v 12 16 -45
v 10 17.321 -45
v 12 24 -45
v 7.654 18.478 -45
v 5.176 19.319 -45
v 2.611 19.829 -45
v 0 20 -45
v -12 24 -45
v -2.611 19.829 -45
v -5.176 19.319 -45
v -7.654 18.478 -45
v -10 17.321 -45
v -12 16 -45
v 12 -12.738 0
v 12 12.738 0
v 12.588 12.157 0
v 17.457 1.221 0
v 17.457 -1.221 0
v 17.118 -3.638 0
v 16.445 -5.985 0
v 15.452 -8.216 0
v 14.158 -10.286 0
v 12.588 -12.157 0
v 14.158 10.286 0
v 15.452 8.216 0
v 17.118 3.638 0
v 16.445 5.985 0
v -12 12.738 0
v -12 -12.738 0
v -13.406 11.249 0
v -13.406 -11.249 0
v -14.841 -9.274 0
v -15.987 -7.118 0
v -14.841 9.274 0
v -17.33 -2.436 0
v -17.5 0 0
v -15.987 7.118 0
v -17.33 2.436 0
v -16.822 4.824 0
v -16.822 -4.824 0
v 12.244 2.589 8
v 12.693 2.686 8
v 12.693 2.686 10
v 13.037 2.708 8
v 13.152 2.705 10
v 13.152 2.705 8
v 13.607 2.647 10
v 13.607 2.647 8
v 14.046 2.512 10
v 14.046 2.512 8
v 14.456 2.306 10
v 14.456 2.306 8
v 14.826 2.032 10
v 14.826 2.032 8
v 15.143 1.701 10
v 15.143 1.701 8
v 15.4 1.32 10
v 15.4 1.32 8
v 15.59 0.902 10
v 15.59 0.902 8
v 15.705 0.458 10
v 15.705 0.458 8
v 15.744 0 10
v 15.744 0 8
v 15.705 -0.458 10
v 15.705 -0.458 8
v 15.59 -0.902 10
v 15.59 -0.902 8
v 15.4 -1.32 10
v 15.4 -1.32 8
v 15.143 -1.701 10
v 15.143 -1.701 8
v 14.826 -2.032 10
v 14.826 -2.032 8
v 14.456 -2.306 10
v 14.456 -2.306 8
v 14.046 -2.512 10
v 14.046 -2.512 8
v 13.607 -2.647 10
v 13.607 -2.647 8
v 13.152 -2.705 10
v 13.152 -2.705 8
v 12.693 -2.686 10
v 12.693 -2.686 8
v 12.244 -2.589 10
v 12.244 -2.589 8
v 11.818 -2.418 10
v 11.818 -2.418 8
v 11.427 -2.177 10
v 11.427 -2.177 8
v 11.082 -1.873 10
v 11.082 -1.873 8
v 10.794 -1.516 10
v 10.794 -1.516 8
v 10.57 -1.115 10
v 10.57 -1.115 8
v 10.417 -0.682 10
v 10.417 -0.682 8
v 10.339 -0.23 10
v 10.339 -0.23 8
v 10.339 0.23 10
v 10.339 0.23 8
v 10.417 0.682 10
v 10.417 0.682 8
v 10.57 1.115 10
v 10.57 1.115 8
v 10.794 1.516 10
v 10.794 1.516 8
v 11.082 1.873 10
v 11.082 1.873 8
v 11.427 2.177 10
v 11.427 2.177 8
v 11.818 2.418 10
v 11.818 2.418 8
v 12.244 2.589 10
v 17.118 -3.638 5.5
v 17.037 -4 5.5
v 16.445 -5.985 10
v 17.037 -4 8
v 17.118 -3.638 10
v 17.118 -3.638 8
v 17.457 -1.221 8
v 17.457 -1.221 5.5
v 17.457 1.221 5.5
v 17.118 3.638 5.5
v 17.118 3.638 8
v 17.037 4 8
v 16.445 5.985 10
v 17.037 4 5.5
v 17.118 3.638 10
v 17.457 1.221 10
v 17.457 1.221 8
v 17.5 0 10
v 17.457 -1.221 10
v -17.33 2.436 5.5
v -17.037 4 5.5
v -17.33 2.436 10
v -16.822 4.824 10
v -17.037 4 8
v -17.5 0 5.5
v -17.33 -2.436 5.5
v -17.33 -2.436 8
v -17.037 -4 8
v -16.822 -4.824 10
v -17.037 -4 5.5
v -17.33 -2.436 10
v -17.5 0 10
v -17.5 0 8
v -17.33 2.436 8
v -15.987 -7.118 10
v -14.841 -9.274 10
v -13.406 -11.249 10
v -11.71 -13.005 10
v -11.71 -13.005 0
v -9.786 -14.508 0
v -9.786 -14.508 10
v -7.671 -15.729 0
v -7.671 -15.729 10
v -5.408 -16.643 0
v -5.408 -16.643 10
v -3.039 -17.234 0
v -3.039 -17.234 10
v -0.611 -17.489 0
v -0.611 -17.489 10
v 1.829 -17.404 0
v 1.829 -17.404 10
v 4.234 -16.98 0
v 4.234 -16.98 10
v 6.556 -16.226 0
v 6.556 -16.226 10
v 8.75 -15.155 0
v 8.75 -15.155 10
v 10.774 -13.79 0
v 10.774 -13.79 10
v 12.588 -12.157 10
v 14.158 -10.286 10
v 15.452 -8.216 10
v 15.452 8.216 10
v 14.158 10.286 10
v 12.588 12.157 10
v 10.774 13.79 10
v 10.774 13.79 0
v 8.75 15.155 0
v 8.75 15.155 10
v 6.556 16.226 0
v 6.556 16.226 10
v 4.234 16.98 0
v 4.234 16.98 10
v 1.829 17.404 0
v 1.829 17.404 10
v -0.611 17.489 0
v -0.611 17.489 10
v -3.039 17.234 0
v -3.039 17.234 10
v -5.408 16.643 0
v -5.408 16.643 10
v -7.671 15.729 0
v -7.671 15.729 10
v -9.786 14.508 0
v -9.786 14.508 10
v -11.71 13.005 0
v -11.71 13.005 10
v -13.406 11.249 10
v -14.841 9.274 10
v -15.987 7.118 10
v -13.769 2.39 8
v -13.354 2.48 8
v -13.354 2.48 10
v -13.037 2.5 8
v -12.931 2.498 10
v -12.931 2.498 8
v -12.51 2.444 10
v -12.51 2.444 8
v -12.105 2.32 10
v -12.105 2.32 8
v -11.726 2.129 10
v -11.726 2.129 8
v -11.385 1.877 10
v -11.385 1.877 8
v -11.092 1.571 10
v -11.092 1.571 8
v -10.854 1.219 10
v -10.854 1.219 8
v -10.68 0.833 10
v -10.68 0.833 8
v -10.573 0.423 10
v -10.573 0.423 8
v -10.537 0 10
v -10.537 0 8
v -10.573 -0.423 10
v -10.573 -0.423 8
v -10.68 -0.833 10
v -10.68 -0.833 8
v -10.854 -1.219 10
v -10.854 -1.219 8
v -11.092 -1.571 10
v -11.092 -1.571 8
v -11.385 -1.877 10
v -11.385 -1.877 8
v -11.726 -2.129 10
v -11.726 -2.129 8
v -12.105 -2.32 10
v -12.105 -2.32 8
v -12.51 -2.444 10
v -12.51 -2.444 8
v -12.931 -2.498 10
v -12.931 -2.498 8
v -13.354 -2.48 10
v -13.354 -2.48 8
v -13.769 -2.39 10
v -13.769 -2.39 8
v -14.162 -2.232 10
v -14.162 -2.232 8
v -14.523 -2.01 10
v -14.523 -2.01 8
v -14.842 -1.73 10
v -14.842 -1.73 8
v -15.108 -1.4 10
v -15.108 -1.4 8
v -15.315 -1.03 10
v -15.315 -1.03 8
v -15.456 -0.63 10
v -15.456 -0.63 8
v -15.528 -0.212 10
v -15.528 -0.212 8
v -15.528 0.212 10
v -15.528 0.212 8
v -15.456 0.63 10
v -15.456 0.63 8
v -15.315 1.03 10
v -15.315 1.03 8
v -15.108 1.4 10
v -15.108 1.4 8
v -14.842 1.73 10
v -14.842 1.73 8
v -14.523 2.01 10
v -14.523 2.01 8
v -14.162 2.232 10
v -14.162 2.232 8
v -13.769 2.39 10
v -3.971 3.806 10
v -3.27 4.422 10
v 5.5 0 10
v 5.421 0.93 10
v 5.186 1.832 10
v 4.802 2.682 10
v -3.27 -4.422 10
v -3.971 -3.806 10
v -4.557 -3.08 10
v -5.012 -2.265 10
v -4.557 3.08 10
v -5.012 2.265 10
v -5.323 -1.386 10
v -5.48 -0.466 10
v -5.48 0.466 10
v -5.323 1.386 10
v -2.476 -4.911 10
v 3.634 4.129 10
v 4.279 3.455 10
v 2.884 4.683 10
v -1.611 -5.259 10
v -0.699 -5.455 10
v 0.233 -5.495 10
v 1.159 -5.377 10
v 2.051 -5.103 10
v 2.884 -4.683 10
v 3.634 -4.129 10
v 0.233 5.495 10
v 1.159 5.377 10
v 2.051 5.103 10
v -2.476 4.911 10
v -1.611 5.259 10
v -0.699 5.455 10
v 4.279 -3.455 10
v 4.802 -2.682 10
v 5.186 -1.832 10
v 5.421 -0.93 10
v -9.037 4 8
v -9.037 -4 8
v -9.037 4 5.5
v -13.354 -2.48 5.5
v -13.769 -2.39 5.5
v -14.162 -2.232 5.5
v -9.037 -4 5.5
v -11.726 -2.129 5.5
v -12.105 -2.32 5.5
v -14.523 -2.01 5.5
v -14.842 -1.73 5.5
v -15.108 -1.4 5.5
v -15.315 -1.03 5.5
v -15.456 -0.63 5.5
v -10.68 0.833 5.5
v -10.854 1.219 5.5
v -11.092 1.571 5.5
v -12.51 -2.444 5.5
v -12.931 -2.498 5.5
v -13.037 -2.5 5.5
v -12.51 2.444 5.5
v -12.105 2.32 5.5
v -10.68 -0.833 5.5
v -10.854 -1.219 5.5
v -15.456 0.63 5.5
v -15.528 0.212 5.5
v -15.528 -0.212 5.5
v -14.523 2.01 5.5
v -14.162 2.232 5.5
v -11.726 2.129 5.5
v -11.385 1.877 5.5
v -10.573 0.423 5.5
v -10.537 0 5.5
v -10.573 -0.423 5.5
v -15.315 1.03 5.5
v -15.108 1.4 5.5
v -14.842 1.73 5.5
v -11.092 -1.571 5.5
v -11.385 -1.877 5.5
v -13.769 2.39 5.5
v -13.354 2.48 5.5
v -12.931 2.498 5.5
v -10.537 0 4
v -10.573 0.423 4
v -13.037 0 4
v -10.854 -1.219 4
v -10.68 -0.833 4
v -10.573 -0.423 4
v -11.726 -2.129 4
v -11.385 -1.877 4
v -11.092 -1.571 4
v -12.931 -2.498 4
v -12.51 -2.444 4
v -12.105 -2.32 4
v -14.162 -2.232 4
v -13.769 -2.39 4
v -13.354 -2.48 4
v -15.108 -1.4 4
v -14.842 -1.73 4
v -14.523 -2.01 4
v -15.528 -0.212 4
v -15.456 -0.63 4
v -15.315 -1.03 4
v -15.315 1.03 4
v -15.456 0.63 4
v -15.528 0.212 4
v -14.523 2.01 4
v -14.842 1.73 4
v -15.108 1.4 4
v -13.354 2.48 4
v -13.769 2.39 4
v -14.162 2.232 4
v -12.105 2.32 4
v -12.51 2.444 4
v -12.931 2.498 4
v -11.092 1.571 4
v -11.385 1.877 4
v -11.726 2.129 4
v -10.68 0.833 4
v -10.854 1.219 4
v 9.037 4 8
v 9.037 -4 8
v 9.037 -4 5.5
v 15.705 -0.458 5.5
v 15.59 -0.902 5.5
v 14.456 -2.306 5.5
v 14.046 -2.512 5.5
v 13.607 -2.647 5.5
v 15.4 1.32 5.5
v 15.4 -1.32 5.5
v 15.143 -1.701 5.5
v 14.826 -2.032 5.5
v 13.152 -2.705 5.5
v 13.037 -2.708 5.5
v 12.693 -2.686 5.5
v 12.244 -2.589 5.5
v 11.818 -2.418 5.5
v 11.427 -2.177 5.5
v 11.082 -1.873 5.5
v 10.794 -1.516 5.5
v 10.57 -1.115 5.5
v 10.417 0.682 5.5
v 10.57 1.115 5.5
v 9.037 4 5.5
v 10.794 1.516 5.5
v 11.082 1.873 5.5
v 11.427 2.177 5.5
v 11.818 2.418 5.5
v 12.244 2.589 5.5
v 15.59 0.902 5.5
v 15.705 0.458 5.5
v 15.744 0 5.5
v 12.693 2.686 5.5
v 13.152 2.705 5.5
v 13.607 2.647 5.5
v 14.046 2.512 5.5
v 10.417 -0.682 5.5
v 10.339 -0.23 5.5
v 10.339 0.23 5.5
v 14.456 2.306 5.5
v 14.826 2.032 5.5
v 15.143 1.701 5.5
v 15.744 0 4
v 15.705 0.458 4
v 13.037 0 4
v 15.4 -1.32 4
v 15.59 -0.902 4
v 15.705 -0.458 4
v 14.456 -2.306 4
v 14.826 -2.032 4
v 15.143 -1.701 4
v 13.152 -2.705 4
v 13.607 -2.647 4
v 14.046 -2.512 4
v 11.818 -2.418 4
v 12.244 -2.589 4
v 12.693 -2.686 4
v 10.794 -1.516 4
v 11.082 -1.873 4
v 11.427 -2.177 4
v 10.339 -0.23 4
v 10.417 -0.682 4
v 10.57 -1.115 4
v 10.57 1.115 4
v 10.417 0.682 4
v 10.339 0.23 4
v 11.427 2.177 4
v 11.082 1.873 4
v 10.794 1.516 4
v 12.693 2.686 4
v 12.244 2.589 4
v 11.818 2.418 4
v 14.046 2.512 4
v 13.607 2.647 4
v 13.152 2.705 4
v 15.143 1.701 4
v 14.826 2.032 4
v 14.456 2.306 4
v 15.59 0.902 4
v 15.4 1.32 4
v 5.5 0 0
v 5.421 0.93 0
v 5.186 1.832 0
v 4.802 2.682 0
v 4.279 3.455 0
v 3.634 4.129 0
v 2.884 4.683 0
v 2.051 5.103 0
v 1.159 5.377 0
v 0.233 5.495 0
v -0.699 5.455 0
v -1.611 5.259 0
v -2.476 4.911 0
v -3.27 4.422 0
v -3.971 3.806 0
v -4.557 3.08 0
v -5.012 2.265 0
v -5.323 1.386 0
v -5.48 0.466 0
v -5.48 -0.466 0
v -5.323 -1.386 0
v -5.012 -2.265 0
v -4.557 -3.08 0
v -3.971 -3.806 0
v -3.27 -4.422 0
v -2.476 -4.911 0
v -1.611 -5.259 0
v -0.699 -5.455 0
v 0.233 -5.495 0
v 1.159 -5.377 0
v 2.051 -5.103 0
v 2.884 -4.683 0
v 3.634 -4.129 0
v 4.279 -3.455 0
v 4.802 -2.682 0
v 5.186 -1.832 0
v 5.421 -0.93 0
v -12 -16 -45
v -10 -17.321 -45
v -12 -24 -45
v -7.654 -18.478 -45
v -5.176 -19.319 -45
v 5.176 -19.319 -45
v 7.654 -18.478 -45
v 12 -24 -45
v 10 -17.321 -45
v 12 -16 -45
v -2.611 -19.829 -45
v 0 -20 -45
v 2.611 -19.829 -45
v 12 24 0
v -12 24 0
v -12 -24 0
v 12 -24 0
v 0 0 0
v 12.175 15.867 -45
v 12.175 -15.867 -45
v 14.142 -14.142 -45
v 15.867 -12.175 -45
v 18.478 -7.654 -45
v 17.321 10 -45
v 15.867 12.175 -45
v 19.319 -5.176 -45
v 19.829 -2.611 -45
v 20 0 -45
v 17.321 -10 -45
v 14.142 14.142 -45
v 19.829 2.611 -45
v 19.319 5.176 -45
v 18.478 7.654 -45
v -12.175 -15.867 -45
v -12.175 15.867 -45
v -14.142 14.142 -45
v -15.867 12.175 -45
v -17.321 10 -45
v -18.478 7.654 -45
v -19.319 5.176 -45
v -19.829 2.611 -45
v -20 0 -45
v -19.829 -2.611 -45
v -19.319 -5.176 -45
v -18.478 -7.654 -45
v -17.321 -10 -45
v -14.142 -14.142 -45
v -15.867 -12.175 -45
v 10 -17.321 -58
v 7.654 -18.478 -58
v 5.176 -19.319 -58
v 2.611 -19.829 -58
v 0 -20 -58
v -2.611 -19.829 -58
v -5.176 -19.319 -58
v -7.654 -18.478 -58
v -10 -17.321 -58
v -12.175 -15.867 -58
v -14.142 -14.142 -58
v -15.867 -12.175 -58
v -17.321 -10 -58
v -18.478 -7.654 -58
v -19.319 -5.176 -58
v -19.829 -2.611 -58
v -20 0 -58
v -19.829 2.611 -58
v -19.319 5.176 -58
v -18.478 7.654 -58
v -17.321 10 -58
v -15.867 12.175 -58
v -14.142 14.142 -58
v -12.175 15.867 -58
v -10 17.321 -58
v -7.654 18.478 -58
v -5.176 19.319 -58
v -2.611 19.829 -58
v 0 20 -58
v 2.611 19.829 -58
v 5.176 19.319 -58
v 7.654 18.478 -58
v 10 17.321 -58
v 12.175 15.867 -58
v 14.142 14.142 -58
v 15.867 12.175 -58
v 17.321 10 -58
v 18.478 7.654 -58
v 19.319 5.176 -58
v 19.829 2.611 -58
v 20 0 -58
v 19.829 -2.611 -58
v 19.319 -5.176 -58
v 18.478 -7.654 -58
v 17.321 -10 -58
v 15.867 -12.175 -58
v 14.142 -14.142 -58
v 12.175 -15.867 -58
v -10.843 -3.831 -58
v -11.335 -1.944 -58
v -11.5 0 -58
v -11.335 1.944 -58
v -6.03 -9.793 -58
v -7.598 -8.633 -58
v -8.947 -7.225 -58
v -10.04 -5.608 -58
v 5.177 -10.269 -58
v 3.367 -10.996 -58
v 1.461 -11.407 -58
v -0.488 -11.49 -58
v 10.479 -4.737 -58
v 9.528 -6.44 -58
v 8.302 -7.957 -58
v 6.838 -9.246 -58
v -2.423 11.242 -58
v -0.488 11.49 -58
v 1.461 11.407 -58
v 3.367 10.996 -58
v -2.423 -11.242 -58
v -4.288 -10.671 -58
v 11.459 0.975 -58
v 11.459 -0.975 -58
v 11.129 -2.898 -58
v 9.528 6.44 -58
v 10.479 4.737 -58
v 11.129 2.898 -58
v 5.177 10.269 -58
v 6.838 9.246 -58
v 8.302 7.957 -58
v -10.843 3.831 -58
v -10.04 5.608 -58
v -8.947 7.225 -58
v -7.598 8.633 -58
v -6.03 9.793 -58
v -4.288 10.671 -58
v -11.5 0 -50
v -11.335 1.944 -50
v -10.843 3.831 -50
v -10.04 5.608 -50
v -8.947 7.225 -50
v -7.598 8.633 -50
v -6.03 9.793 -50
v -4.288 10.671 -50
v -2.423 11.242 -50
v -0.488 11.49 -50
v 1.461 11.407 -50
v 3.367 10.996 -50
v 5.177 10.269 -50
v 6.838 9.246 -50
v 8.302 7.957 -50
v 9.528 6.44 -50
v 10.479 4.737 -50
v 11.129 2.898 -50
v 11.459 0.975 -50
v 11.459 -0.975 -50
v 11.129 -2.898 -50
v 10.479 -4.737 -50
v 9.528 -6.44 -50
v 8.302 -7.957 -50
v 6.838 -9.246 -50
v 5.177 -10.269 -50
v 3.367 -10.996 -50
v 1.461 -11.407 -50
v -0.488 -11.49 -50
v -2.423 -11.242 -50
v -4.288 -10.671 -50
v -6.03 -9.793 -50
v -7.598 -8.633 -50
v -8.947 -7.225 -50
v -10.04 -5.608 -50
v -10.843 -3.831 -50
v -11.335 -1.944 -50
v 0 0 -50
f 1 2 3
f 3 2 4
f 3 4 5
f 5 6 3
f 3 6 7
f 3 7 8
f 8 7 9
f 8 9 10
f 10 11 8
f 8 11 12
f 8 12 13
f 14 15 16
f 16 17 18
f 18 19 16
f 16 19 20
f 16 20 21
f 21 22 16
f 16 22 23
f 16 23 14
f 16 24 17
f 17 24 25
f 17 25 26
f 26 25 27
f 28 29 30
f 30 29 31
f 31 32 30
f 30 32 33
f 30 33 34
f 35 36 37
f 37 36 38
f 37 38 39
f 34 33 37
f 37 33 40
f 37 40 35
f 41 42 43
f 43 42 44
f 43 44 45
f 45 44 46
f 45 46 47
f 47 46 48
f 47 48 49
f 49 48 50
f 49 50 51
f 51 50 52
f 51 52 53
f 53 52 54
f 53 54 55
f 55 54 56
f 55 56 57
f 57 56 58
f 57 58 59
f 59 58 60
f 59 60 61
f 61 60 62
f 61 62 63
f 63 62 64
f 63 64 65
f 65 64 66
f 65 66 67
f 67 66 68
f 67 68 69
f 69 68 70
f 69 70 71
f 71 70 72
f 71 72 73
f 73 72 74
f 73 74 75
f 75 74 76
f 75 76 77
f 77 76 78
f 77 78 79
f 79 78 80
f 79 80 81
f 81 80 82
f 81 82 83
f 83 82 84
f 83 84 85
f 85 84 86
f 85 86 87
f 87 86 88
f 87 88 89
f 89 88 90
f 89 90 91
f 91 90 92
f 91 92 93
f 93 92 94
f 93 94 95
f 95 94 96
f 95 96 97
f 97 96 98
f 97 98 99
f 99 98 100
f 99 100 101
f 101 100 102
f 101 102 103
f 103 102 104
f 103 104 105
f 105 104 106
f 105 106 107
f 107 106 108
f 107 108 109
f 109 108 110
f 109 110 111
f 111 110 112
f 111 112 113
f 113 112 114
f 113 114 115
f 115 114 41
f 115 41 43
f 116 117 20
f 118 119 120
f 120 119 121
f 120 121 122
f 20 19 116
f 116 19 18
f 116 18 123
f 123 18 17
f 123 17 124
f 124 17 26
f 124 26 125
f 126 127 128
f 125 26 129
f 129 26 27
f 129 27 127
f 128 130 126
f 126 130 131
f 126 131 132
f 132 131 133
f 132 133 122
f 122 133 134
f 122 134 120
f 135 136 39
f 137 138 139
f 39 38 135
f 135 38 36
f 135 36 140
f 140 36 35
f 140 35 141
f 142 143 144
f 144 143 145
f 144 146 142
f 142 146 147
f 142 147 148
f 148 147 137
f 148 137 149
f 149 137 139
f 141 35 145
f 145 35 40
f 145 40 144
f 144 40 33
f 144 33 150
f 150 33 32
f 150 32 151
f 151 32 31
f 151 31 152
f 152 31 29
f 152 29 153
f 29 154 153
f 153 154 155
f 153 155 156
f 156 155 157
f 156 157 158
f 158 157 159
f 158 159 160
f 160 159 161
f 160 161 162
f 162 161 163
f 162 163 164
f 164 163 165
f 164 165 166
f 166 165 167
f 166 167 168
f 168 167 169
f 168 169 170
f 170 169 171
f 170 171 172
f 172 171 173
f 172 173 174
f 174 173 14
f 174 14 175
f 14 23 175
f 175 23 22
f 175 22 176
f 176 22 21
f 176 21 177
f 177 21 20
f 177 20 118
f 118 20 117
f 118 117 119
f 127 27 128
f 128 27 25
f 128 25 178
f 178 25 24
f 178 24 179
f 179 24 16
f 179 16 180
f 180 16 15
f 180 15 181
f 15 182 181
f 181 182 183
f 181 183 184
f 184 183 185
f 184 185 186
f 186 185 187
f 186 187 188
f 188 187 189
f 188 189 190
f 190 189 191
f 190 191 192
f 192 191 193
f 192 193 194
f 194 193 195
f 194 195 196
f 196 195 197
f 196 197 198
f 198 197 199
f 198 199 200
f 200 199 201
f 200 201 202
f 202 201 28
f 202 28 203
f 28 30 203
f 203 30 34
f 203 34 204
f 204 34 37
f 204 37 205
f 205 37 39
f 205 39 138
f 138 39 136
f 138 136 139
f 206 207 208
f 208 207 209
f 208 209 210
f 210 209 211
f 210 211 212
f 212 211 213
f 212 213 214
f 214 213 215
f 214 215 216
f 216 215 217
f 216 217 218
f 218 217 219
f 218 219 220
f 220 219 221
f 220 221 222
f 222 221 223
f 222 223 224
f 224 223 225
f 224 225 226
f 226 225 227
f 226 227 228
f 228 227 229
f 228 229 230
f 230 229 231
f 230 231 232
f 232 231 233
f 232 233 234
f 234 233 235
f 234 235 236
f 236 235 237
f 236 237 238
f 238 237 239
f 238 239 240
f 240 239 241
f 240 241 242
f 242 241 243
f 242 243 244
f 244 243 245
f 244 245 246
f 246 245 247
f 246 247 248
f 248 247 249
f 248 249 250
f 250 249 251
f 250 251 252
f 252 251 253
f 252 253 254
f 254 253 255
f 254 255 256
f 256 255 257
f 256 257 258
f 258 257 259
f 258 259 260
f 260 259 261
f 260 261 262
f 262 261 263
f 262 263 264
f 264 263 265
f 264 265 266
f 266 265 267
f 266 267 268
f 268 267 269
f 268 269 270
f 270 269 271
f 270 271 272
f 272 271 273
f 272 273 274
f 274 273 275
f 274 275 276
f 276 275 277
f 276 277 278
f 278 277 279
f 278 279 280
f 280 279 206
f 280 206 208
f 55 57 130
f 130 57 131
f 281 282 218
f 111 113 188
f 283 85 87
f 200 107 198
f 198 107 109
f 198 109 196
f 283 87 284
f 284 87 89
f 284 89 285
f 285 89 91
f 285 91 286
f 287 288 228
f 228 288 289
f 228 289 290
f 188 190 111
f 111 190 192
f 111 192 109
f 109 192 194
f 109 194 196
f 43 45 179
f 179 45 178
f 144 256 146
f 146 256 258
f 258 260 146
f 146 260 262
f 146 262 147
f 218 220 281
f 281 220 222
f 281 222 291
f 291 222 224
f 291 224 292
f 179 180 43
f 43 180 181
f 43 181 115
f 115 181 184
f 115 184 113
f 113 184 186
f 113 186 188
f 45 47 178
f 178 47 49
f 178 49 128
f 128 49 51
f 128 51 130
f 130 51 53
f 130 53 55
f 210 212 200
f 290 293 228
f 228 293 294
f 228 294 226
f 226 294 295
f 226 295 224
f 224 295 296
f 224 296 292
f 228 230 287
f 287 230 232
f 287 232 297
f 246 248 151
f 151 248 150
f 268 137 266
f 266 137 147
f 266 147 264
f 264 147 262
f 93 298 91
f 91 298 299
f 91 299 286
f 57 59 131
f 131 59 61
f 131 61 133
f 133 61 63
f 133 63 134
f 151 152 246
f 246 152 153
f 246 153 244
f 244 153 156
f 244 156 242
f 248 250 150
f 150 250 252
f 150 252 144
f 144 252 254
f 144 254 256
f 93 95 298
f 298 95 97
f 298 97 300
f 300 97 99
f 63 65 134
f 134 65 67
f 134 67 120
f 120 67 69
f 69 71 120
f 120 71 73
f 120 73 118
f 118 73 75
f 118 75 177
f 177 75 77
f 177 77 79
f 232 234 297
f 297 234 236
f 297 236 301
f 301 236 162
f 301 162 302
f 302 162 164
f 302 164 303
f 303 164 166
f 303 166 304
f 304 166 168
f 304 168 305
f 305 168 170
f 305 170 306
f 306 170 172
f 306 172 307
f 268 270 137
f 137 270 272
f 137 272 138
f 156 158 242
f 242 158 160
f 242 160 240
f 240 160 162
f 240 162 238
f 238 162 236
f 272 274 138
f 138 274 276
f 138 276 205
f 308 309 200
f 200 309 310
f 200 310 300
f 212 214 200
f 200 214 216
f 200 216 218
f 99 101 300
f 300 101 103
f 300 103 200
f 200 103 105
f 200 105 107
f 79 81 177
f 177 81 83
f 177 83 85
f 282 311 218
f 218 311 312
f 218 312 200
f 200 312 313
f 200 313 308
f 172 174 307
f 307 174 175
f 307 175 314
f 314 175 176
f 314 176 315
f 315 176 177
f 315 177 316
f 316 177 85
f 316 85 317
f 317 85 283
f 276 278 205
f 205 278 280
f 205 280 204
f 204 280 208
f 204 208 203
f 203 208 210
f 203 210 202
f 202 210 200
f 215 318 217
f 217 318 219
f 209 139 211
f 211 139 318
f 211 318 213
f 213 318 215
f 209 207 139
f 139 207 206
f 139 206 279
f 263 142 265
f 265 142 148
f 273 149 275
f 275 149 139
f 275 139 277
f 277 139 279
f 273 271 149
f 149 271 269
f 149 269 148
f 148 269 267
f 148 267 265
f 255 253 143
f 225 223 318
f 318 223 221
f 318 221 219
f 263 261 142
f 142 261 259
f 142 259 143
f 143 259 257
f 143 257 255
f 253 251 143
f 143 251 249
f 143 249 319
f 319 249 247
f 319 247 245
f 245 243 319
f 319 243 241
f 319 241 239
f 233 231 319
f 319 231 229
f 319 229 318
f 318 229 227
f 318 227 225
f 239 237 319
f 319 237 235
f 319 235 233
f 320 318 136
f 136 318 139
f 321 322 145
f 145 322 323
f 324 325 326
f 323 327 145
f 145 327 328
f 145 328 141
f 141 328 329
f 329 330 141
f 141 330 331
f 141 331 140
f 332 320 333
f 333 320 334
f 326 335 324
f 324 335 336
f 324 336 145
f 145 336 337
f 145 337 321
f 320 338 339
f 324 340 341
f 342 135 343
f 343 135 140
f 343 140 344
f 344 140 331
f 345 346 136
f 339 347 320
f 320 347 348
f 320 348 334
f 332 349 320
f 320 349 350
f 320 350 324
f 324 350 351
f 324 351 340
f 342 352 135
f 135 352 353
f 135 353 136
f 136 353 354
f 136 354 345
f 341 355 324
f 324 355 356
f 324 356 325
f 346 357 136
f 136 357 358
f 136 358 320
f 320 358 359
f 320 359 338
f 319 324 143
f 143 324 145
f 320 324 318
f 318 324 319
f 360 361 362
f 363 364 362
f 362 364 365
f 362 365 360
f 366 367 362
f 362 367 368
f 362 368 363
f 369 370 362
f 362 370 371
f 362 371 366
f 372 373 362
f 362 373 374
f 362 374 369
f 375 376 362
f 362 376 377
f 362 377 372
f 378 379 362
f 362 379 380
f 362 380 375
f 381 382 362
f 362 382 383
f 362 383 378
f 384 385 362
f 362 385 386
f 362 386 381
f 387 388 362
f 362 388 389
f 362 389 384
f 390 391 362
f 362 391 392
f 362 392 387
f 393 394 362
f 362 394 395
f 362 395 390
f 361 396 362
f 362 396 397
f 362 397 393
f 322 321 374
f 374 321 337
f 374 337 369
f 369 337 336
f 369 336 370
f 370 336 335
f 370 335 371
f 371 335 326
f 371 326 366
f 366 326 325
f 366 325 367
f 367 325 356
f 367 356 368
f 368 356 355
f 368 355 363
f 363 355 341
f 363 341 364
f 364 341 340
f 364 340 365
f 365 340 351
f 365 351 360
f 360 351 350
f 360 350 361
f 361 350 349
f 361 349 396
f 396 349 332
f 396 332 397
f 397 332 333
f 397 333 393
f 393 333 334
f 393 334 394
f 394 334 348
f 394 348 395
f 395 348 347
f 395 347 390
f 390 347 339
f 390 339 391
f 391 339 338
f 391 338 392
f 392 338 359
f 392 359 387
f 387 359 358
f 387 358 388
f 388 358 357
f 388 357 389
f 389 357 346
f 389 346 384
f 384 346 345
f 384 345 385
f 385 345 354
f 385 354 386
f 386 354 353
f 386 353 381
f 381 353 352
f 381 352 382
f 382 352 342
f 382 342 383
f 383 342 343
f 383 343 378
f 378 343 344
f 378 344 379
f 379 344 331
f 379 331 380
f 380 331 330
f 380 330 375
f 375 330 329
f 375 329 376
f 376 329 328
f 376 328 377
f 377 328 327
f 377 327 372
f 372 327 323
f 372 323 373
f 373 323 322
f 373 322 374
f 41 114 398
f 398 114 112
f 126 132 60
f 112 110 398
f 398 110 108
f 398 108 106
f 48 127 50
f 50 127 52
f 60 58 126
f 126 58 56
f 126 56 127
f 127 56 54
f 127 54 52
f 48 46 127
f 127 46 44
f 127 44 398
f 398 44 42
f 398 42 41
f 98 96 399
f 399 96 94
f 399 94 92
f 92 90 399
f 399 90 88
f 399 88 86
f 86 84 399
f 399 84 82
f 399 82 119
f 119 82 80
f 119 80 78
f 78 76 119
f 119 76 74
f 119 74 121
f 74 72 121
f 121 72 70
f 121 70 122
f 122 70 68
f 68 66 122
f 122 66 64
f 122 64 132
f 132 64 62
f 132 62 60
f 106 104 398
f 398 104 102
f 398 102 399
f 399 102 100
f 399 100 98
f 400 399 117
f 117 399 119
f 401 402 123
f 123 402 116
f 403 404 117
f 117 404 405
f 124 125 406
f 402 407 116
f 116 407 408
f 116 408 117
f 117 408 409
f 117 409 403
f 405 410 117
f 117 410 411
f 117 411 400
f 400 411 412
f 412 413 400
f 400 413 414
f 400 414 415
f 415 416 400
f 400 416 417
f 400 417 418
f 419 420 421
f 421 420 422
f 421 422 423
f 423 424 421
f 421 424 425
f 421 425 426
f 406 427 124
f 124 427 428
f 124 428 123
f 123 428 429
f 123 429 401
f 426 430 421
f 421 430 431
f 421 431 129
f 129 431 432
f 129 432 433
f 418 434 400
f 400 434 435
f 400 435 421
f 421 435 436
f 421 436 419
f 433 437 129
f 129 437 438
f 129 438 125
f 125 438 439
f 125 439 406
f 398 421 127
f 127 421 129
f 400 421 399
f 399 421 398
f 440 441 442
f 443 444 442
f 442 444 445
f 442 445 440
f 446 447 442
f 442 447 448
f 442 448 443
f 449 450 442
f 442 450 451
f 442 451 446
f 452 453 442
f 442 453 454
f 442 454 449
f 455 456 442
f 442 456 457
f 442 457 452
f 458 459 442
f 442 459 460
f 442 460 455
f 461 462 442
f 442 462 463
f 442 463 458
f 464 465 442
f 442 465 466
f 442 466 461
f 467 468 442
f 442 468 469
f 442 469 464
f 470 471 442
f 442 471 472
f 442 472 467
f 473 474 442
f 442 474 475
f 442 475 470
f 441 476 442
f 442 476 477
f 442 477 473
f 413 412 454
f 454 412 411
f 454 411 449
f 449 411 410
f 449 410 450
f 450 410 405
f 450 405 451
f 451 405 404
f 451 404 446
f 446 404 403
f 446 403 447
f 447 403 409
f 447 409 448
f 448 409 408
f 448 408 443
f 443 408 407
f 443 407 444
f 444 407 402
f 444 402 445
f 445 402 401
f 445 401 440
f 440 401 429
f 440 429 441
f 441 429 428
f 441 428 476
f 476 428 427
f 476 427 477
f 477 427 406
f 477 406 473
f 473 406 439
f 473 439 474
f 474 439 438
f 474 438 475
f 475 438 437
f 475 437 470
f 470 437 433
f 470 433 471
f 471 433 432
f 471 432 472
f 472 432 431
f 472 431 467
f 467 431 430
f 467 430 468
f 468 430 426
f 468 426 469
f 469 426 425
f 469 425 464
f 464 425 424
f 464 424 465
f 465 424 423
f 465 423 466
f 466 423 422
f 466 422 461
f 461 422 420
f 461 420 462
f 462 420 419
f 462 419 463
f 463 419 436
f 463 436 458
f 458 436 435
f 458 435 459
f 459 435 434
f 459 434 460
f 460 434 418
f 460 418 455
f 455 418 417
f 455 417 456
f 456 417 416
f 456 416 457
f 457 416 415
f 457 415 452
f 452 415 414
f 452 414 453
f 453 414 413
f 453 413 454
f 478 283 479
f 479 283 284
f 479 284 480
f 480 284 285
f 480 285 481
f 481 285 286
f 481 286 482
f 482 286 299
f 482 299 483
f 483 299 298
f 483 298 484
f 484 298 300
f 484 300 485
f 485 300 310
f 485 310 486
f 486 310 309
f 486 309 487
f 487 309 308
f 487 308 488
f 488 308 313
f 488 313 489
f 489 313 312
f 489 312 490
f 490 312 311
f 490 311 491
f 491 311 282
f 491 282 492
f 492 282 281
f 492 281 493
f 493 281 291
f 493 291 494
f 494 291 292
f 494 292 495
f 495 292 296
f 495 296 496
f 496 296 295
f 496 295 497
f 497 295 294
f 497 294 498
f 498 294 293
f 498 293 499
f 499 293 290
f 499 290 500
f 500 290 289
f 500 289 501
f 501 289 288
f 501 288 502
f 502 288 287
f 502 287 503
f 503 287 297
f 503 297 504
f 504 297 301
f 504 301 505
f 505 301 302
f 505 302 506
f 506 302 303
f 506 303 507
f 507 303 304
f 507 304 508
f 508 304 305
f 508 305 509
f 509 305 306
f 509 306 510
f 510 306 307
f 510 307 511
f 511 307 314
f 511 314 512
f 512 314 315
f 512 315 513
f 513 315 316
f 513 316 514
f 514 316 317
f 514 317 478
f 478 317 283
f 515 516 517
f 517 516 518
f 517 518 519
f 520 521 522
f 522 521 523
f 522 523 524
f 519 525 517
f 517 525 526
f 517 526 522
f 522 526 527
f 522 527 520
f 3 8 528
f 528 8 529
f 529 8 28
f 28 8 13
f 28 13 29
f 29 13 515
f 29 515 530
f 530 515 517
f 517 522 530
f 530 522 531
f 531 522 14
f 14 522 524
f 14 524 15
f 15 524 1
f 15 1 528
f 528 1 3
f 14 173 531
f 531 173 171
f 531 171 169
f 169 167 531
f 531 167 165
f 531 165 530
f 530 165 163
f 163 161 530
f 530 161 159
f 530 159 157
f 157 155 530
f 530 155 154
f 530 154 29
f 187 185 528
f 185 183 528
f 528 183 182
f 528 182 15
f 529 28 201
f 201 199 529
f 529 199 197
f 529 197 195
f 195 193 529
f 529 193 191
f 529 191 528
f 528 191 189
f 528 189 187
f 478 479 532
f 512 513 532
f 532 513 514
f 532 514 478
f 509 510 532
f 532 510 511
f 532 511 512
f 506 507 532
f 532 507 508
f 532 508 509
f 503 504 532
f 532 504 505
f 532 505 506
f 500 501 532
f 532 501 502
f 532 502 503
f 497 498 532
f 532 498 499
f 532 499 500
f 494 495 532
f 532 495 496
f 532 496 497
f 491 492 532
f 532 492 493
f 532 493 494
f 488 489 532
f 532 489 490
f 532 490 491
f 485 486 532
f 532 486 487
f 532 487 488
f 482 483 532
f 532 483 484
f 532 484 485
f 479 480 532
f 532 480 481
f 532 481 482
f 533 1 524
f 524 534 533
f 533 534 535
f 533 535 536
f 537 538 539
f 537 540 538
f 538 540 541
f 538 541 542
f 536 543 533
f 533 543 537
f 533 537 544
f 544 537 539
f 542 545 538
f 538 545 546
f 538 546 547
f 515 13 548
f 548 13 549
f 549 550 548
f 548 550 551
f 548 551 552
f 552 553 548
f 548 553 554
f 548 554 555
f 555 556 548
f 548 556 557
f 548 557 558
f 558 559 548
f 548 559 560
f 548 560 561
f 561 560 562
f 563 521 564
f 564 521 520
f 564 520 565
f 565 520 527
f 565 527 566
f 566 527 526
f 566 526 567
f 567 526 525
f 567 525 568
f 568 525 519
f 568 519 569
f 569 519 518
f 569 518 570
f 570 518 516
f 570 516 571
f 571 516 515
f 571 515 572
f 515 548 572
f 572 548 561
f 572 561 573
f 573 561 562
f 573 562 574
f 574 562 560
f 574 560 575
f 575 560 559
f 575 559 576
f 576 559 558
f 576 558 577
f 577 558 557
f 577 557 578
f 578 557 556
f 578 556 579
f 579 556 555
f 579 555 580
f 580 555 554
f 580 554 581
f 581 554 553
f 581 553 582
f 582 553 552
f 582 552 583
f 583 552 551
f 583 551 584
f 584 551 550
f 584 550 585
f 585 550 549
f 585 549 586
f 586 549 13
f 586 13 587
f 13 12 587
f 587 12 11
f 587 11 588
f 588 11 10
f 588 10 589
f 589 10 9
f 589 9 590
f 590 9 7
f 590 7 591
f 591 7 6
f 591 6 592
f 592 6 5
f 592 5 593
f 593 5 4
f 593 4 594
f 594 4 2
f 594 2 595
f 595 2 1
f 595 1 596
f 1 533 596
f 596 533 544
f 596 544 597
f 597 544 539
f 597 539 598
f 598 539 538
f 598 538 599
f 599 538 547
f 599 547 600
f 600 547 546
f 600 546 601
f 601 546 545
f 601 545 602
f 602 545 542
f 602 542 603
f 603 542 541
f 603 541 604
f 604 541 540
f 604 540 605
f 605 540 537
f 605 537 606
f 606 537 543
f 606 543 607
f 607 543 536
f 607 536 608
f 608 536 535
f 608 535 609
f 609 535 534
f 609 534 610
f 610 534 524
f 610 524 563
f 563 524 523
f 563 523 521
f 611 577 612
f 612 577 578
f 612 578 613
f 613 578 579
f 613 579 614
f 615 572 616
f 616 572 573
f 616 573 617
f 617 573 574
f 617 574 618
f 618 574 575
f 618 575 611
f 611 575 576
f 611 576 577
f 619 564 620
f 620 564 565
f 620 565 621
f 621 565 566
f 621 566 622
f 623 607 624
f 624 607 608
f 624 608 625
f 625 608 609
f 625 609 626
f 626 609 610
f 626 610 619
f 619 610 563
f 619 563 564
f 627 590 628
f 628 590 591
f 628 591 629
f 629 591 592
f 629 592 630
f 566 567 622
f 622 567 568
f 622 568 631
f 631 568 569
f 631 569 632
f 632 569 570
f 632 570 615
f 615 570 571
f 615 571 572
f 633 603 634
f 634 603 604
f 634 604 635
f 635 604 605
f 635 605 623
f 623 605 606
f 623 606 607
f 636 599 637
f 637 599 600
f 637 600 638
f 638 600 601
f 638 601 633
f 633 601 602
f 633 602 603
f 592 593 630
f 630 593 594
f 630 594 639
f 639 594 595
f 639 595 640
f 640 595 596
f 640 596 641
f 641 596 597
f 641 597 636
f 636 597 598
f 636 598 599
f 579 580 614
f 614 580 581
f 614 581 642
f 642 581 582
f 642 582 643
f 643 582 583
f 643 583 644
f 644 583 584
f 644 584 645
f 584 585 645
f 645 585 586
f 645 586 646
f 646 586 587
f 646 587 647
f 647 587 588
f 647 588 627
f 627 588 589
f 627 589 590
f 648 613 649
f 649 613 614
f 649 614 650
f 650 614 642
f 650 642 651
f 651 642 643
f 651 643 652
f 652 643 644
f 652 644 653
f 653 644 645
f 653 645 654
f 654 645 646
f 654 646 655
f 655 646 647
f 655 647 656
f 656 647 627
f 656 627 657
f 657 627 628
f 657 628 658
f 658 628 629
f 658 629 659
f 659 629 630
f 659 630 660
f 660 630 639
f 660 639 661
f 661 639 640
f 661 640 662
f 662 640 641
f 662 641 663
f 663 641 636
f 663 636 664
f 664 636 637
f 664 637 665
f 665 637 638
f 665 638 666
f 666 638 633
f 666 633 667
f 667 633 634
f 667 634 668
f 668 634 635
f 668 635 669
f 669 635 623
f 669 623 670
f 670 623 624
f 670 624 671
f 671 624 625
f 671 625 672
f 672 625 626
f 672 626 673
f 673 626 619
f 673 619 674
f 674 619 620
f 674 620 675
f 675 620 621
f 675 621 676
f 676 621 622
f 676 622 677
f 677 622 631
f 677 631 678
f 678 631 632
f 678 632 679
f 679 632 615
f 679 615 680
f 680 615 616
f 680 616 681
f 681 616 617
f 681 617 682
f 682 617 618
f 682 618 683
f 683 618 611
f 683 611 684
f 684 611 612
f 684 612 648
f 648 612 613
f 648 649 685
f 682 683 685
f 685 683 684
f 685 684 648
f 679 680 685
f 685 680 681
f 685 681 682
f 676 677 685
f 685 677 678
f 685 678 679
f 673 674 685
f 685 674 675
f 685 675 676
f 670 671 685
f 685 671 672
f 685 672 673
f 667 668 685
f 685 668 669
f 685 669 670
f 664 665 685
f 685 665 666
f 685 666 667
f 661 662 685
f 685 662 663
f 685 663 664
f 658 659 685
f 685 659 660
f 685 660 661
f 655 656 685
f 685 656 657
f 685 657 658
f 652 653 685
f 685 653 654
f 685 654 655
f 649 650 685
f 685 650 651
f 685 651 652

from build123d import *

# Parameters (mm, degrees)
ESQUISSE1_R                  = 17.5
BOSS_EXTRU_1_DEPTH           = 10
ESQUISSE3_W                  = 8
ESQUISSE3_H                  = 8
BOSS_EXTRU_3_DEPTH           = 4.5
ESQUISSE4_W                  = 2.5
ESQUISSE4_H                  = 8
ENL_V_MAT_EXTRU_1_DEPTH      = 1
ENL_V_MAT_EXTRU_1_DEPTH_BACK = 8
ESQUISSE5_R                  = 2.5
ENL_V_MAT_EXTRU_2_DEPTH      = 10.5
ESQUISSE6_W                  = 8
ESQUISSE6_H                  = 8
ESQUISSE6_R                  = 2.5
ENL_V_MAT_EXTRU_3_DEPTH      = 4.5
ESQUISSE7_W                  = 2.5
ESQUISSE7_H                  = 8
ENL_V_MAT_EXTRU_4_DEPTH      = 1
ENL_V_MAT_EXTRU_4_DEPTH_BACK = 8
ESQUISSE8_R                  = 2.707539361
ENL_V_MAT_EXTRU_5_DEPTH      = 10.5
ESQUISSE9_W                  = 8
ESQUISSE9_H                  = 8
ESQUISSE9_R                  = 2.707539361
ENL_V_MAT_EXTRU_6_DEPTH      = 4.5
ESQUISSE10_R                 = 5.5
ENL_V_MAT_EXTRU_7_DEPTH      = 11
ESQUISSE11_W                 = 24
ESQUISSE11_H                 = 48
BOSS_EXTRU_4_DEPTH           = 45
ESQUISSE12_R                 = 20
BOSS_EXTRU_5_DEPTH           = 13
ESQUISSE13_R                 = 11.5
ENL_V_MAT_EXTRU_8_DEPTH      = 8


with BuildPart() as part:
    # Esquisse1 → Boss.-Extru.1 (new body)
    with BuildSketch(Plane.XY):
        Circle(ESQUISSE1_R)
    extrude(amount=BOSS_EXTRU_1_DEPTH)

    # Esquisse3 → Boss.-Extru.3 (add)
    with BuildSketch(Plane.XY.offset(10)):
        with Locations((13.036725037, 0)):
            Rectangle(ESQUISSE3_W, ESQUISSE3_H)
        with Locations((-13.036725037, 0)):
            Rectangle(ESQUISSE3_W, ESQUISSE3_H)
    extrude(amount=BOSS_EXTRU_3_DEPTH)

    # Esquisse4 → Enlèv. mat.-Extru.1 (cut, two sides)
    with BuildSketch(Plane.ZY.offset(17.036725037)) as enl_v_mat_extru_1_sk:
        with Locations((6.75, 0)):
            Rectangle(ESQUISSE4_W, ESQUISSE4_H)
    extrude(amount=ENL_V_MAT_EXTRU_1_DEPTH, mode=Mode.SUBTRACT)
    extrude(enl_v_mat_extru_1_sk.sketch, amount=-ENL_V_MAT_EXTRU_1_DEPTH_BACK, mode=Mode.SUBTRACT)

    # Esquisse5 → Enlèv. mat.-Extru.2 (cut)
    with BuildSketch(Plane.XY.offset(14.5)):
        with Locations((-13.036725037, 0)):
            Circle(ESQUISSE5_R)
    extrude(amount=-ENL_V_MAT_EXTRU_2_DEPTH, mode=Mode.SUBTRACT)

    # Esquisse6 → Enlèv. mat.-Extru.3 (cut)
    with BuildSketch(Plane.XY.offset(14.5)):
        with Locations((-13.036725037, 0)):
            Rectangle(ESQUISSE6_W, ESQUISSE6_H)
        with Locations((-13.036725037, 0)):
            Circle(ESQUISSE6_R, mode=Mode.SUBTRACT)
    extrude(amount=-ENL_V_MAT_EXTRU_3_DEPTH, mode=Mode.SUBTRACT)

    # Esquisse7 → Enlèv. mat.-Extru.4 (cut, two sides)
    with BuildSketch(Plane(origin=(17.036725037, 0, 0), x_dir=(0, 0, -1), z_dir=(1, 0, 0))) as enl_v_mat_extru_4_sk:
        with Locations((-6.75, 0)):
            Rectangle(ESQUISSE7_W, ESQUISSE7_H)
    extrude(amount=ENL_V_MAT_EXTRU_4_DEPTH, mode=Mode.SUBTRACT)
    extrude(enl_v_mat_extru_4_sk.sketch, amount=-ENL_V_MAT_EXTRU_4_DEPTH_BACK, mode=Mode.SUBTRACT)

    # Esquisse8 → Enlèv. mat.-Extru.5 (cut)
    with BuildSketch(Plane.XY.offset(14.5)):
        with Locations((13.036725037, 0)):
            Circle(ESQUISSE8_R)
    extrude(amount=-ENL_V_MAT_EXTRU_5_DEPTH, mode=Mode.SUBTRACT)

    # Esquisse9 → Enlèv. mat.-Extru.6 (cut)
    with BuildSketch(Plane.XY.offset(14.5)):
        with Locations((13.036725037, 0)):
            Rectangle(ESQUISSE9_W, ESQUISSE9_H)
        with Locations((13.036725037, 0)):
            Circle(ESQUISSE9_R, mode=Mode.SUBTRACT)
    extrude(amount=-ENL_V_MAT_EXTRU_6_DEPTH, mode=Mode.SUBTRACT)

    # Esquisse10 → Enlèv. mat.-Extru.7 (cut, through all)
    with BuildSketch(Plane.XY.offset(10)):
        Circle(ESQUISSE10_R)
    extrude(amount=-ENL_V_MAT_EXTRU_7_DEPTH, mode=Mode.SUBTRACT)

    # Esquisse11 → Boss.-Extru.4 (add)
    with BuildSketch(Plane(origin=(0, 0, 0), x_dir=(-1, 0, 0), z_dir=(0, 0, -1))):
        Rectangle(ESQUISSE11_W, ESQUISSE11_H)
    extrude(amount=BOSS_EXTRU_4_DEPTH)

    # Esquisse12 → Boss.-Extru.5 (add)
    with BuildSketch(Plane(origin=(0, 0, -45), x_dir=(-1, 0, 0), z_dir=(0, 0, -1))):
        Circle(ESQUISSE12_R)
    extrude(amount=BOSS_EXTRU_5_DEPTH)

    # Esquisse13 → Enlèv. mat.-Extru.8 (cut)
    with BuildSketch(Plane(origin=(0, 0, -58), x_dir=(-1, 0, 0), z_dir=(0, 0, -1))):
        Circle(ESQUISSE13_R)
    extrude(amount=-ENL_V_MAT_EXTRU_8_DEPTH, mode=Mode.SUBTRACT)


solid = part.part
